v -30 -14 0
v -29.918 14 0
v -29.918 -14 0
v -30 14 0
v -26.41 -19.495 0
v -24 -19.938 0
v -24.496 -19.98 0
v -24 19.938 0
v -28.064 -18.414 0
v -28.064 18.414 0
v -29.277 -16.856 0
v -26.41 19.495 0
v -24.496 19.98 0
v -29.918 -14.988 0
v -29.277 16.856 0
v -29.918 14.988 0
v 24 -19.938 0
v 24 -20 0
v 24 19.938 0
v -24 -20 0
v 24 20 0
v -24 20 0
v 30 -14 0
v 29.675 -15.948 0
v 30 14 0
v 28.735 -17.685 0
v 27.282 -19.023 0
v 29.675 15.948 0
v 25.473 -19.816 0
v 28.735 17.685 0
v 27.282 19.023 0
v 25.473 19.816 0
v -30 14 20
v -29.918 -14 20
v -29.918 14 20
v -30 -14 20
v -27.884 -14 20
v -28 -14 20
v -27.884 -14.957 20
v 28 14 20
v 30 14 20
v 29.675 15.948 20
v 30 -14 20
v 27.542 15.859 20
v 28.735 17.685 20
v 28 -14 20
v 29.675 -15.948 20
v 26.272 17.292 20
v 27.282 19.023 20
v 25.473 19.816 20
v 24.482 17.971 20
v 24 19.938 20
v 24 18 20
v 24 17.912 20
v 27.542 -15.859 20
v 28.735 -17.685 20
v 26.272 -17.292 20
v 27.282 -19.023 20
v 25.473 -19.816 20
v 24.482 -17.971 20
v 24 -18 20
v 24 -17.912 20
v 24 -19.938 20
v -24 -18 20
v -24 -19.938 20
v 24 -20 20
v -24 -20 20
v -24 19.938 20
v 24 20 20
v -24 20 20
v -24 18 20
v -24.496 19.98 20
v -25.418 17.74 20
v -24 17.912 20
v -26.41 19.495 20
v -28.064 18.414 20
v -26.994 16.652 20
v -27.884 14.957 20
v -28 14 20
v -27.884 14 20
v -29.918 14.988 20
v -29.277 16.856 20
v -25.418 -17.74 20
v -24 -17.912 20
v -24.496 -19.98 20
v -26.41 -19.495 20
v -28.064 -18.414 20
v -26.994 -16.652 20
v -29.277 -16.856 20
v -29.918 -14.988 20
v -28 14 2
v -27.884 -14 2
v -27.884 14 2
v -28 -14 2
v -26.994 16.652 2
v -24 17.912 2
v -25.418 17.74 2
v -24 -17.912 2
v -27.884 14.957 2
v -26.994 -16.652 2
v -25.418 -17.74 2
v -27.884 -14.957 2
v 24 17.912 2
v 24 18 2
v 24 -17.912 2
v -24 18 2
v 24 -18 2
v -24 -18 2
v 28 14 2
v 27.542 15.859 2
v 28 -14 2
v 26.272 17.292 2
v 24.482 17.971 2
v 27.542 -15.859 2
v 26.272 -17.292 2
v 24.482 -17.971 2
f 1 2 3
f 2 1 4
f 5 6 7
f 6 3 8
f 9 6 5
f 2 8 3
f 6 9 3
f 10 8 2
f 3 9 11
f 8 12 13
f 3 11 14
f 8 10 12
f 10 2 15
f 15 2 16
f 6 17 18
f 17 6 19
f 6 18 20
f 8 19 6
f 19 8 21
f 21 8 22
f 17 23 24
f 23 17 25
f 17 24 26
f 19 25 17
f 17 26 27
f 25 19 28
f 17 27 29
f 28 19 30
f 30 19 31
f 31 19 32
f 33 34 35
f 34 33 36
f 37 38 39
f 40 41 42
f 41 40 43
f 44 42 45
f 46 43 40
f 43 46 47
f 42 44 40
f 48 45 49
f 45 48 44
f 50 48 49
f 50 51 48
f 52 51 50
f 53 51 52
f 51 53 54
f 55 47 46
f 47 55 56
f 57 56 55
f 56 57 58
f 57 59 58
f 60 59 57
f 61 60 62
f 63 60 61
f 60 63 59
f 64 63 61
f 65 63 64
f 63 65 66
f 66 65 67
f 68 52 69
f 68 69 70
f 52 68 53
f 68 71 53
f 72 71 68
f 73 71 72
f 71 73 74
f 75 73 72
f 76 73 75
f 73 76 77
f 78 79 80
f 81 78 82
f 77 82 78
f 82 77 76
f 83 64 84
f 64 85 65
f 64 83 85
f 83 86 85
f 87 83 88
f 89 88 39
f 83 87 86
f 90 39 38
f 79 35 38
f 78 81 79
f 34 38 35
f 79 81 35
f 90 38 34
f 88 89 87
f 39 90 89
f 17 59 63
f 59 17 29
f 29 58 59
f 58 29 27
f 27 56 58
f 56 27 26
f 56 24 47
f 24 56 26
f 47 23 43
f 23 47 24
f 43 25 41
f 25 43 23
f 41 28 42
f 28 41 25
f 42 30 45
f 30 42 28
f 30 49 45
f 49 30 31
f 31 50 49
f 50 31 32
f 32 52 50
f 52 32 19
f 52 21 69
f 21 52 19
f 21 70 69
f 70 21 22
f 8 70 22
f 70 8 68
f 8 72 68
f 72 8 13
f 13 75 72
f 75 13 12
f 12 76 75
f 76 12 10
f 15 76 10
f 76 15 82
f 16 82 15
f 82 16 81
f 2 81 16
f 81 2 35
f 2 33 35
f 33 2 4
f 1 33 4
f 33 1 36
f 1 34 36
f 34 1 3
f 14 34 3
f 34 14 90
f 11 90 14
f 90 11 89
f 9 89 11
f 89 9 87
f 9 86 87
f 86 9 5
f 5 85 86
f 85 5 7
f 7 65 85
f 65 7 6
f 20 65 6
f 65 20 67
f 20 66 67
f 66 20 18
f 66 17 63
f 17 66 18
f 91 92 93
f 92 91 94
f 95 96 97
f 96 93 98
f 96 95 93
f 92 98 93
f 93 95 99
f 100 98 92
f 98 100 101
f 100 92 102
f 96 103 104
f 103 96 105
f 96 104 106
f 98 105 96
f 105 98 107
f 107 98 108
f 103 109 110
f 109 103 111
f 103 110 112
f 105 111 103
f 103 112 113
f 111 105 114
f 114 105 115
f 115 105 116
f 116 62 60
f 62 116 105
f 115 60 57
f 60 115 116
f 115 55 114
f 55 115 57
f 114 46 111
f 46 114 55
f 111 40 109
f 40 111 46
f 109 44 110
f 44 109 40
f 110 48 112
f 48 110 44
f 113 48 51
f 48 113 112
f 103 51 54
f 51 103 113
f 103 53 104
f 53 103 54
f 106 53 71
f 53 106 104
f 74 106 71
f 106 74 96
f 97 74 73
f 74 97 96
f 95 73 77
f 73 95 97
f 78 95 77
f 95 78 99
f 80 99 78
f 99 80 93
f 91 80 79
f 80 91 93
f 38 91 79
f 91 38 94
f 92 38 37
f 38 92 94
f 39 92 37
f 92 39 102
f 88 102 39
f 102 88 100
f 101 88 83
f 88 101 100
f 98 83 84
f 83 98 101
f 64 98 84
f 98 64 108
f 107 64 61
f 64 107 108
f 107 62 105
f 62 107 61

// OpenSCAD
/* doodle-meta {"version":1,"parameters":{"width":{"label":"Overall width","description":"Changes the body width","unit":"mm","feature":"body_width"},"depth":{"label":"Overall depth","description":"Changes the body depth","unit":"mm","feature":"body_depth"},"height":{"label":"Overall height","description":"Changes the body height","unit":"mm","feature":"body_height"},"corner_radius":{"label":"Corner radius","description":"Changes the outer corner radius","unit":"mm","feature":"corner_radius"},"wall_thickness":{"label":"Wall thickness","description":"Changes the uniform wall and floor thickness","unit":"mm","feature":"wall_thickness"}},"features":{"body_width":{"kind":"dimension","axis":"x","label":"Overall width"},"body_depth":{"kind":"dimension","axis":"y","label":"Overall depth"},"body_height":{"kind":"dimension","axis":"z","label":"Overall height"},"corner_radius":{"kind":"region","label":"Corner radius","min":[0,0,0],"max":[{"parameter":"corner_radius","scale":1,"offset":0},{"parameter":"corner_radius","scale":1,"offset":0},{"parameter":"height","scale":1,"offset":0}]},"wall_thickness":{"kind":"region","label":"Wall thickness","min":[0,0,0],"max":[{"parameter":"wall_thickness","scale":1,"offset":0},{"parameter":"wall_thickness","scale":1,"offset":0},{"parameter":"height","scale":1,"offset":0}]}}} */

// Top-level editable parameters
width = 60;
depth = 40;
height = 20;
corner_radius = 6;
wall_thickness = 2;

// Derived sizes (not editable)
inner_width = width - 2 * wall_thickness;
inner_depth = depth - 2 * wall_thickness;
inner_height = height - wall_thickness;
inner_corner_radius = corner_radius - wall_thickness;

// Module for rounded rectangle extrusion
module rounded_rect(w, d, r, h) {
    // Create a rounded rectangle by combining a central cross and corner cylinders
    // This ensures a watertight manifold
    linear_extrude(height=h) {
        union() {
            // Central cross
            square([w - 2*r, d], center=true);
            square([w, d - 2*r], center=true);
            // Corner cylinders
            translate([-(w/2 - r), -(d/2 - r)]) circle(r=r);
            translate([ (w/2 - r), -(d/2 - r)]) circle(r=r);
            translate([-(w/2 - r),  (d/2 - r)]) circle(r=r);
            translate([ (w/2 - r),  (d/2 - r)]) circle(r=r);
        }
    }
}

// Main design
difference() {
    // Outer shell
    rounded_rect(width, depth, corner_radius, height);
    
    // Inner cavity (cutout)
    // Positioned to leave uniform floor thickness at the bottom (Z=0)
    // The cavity starts at Z = wall_thickness and goes up through the top
    translate([0, 0, wall_thickness]) {
        rounded_rect(inner_width, inner_depth, inner_corner_radius, height);
    }
}
